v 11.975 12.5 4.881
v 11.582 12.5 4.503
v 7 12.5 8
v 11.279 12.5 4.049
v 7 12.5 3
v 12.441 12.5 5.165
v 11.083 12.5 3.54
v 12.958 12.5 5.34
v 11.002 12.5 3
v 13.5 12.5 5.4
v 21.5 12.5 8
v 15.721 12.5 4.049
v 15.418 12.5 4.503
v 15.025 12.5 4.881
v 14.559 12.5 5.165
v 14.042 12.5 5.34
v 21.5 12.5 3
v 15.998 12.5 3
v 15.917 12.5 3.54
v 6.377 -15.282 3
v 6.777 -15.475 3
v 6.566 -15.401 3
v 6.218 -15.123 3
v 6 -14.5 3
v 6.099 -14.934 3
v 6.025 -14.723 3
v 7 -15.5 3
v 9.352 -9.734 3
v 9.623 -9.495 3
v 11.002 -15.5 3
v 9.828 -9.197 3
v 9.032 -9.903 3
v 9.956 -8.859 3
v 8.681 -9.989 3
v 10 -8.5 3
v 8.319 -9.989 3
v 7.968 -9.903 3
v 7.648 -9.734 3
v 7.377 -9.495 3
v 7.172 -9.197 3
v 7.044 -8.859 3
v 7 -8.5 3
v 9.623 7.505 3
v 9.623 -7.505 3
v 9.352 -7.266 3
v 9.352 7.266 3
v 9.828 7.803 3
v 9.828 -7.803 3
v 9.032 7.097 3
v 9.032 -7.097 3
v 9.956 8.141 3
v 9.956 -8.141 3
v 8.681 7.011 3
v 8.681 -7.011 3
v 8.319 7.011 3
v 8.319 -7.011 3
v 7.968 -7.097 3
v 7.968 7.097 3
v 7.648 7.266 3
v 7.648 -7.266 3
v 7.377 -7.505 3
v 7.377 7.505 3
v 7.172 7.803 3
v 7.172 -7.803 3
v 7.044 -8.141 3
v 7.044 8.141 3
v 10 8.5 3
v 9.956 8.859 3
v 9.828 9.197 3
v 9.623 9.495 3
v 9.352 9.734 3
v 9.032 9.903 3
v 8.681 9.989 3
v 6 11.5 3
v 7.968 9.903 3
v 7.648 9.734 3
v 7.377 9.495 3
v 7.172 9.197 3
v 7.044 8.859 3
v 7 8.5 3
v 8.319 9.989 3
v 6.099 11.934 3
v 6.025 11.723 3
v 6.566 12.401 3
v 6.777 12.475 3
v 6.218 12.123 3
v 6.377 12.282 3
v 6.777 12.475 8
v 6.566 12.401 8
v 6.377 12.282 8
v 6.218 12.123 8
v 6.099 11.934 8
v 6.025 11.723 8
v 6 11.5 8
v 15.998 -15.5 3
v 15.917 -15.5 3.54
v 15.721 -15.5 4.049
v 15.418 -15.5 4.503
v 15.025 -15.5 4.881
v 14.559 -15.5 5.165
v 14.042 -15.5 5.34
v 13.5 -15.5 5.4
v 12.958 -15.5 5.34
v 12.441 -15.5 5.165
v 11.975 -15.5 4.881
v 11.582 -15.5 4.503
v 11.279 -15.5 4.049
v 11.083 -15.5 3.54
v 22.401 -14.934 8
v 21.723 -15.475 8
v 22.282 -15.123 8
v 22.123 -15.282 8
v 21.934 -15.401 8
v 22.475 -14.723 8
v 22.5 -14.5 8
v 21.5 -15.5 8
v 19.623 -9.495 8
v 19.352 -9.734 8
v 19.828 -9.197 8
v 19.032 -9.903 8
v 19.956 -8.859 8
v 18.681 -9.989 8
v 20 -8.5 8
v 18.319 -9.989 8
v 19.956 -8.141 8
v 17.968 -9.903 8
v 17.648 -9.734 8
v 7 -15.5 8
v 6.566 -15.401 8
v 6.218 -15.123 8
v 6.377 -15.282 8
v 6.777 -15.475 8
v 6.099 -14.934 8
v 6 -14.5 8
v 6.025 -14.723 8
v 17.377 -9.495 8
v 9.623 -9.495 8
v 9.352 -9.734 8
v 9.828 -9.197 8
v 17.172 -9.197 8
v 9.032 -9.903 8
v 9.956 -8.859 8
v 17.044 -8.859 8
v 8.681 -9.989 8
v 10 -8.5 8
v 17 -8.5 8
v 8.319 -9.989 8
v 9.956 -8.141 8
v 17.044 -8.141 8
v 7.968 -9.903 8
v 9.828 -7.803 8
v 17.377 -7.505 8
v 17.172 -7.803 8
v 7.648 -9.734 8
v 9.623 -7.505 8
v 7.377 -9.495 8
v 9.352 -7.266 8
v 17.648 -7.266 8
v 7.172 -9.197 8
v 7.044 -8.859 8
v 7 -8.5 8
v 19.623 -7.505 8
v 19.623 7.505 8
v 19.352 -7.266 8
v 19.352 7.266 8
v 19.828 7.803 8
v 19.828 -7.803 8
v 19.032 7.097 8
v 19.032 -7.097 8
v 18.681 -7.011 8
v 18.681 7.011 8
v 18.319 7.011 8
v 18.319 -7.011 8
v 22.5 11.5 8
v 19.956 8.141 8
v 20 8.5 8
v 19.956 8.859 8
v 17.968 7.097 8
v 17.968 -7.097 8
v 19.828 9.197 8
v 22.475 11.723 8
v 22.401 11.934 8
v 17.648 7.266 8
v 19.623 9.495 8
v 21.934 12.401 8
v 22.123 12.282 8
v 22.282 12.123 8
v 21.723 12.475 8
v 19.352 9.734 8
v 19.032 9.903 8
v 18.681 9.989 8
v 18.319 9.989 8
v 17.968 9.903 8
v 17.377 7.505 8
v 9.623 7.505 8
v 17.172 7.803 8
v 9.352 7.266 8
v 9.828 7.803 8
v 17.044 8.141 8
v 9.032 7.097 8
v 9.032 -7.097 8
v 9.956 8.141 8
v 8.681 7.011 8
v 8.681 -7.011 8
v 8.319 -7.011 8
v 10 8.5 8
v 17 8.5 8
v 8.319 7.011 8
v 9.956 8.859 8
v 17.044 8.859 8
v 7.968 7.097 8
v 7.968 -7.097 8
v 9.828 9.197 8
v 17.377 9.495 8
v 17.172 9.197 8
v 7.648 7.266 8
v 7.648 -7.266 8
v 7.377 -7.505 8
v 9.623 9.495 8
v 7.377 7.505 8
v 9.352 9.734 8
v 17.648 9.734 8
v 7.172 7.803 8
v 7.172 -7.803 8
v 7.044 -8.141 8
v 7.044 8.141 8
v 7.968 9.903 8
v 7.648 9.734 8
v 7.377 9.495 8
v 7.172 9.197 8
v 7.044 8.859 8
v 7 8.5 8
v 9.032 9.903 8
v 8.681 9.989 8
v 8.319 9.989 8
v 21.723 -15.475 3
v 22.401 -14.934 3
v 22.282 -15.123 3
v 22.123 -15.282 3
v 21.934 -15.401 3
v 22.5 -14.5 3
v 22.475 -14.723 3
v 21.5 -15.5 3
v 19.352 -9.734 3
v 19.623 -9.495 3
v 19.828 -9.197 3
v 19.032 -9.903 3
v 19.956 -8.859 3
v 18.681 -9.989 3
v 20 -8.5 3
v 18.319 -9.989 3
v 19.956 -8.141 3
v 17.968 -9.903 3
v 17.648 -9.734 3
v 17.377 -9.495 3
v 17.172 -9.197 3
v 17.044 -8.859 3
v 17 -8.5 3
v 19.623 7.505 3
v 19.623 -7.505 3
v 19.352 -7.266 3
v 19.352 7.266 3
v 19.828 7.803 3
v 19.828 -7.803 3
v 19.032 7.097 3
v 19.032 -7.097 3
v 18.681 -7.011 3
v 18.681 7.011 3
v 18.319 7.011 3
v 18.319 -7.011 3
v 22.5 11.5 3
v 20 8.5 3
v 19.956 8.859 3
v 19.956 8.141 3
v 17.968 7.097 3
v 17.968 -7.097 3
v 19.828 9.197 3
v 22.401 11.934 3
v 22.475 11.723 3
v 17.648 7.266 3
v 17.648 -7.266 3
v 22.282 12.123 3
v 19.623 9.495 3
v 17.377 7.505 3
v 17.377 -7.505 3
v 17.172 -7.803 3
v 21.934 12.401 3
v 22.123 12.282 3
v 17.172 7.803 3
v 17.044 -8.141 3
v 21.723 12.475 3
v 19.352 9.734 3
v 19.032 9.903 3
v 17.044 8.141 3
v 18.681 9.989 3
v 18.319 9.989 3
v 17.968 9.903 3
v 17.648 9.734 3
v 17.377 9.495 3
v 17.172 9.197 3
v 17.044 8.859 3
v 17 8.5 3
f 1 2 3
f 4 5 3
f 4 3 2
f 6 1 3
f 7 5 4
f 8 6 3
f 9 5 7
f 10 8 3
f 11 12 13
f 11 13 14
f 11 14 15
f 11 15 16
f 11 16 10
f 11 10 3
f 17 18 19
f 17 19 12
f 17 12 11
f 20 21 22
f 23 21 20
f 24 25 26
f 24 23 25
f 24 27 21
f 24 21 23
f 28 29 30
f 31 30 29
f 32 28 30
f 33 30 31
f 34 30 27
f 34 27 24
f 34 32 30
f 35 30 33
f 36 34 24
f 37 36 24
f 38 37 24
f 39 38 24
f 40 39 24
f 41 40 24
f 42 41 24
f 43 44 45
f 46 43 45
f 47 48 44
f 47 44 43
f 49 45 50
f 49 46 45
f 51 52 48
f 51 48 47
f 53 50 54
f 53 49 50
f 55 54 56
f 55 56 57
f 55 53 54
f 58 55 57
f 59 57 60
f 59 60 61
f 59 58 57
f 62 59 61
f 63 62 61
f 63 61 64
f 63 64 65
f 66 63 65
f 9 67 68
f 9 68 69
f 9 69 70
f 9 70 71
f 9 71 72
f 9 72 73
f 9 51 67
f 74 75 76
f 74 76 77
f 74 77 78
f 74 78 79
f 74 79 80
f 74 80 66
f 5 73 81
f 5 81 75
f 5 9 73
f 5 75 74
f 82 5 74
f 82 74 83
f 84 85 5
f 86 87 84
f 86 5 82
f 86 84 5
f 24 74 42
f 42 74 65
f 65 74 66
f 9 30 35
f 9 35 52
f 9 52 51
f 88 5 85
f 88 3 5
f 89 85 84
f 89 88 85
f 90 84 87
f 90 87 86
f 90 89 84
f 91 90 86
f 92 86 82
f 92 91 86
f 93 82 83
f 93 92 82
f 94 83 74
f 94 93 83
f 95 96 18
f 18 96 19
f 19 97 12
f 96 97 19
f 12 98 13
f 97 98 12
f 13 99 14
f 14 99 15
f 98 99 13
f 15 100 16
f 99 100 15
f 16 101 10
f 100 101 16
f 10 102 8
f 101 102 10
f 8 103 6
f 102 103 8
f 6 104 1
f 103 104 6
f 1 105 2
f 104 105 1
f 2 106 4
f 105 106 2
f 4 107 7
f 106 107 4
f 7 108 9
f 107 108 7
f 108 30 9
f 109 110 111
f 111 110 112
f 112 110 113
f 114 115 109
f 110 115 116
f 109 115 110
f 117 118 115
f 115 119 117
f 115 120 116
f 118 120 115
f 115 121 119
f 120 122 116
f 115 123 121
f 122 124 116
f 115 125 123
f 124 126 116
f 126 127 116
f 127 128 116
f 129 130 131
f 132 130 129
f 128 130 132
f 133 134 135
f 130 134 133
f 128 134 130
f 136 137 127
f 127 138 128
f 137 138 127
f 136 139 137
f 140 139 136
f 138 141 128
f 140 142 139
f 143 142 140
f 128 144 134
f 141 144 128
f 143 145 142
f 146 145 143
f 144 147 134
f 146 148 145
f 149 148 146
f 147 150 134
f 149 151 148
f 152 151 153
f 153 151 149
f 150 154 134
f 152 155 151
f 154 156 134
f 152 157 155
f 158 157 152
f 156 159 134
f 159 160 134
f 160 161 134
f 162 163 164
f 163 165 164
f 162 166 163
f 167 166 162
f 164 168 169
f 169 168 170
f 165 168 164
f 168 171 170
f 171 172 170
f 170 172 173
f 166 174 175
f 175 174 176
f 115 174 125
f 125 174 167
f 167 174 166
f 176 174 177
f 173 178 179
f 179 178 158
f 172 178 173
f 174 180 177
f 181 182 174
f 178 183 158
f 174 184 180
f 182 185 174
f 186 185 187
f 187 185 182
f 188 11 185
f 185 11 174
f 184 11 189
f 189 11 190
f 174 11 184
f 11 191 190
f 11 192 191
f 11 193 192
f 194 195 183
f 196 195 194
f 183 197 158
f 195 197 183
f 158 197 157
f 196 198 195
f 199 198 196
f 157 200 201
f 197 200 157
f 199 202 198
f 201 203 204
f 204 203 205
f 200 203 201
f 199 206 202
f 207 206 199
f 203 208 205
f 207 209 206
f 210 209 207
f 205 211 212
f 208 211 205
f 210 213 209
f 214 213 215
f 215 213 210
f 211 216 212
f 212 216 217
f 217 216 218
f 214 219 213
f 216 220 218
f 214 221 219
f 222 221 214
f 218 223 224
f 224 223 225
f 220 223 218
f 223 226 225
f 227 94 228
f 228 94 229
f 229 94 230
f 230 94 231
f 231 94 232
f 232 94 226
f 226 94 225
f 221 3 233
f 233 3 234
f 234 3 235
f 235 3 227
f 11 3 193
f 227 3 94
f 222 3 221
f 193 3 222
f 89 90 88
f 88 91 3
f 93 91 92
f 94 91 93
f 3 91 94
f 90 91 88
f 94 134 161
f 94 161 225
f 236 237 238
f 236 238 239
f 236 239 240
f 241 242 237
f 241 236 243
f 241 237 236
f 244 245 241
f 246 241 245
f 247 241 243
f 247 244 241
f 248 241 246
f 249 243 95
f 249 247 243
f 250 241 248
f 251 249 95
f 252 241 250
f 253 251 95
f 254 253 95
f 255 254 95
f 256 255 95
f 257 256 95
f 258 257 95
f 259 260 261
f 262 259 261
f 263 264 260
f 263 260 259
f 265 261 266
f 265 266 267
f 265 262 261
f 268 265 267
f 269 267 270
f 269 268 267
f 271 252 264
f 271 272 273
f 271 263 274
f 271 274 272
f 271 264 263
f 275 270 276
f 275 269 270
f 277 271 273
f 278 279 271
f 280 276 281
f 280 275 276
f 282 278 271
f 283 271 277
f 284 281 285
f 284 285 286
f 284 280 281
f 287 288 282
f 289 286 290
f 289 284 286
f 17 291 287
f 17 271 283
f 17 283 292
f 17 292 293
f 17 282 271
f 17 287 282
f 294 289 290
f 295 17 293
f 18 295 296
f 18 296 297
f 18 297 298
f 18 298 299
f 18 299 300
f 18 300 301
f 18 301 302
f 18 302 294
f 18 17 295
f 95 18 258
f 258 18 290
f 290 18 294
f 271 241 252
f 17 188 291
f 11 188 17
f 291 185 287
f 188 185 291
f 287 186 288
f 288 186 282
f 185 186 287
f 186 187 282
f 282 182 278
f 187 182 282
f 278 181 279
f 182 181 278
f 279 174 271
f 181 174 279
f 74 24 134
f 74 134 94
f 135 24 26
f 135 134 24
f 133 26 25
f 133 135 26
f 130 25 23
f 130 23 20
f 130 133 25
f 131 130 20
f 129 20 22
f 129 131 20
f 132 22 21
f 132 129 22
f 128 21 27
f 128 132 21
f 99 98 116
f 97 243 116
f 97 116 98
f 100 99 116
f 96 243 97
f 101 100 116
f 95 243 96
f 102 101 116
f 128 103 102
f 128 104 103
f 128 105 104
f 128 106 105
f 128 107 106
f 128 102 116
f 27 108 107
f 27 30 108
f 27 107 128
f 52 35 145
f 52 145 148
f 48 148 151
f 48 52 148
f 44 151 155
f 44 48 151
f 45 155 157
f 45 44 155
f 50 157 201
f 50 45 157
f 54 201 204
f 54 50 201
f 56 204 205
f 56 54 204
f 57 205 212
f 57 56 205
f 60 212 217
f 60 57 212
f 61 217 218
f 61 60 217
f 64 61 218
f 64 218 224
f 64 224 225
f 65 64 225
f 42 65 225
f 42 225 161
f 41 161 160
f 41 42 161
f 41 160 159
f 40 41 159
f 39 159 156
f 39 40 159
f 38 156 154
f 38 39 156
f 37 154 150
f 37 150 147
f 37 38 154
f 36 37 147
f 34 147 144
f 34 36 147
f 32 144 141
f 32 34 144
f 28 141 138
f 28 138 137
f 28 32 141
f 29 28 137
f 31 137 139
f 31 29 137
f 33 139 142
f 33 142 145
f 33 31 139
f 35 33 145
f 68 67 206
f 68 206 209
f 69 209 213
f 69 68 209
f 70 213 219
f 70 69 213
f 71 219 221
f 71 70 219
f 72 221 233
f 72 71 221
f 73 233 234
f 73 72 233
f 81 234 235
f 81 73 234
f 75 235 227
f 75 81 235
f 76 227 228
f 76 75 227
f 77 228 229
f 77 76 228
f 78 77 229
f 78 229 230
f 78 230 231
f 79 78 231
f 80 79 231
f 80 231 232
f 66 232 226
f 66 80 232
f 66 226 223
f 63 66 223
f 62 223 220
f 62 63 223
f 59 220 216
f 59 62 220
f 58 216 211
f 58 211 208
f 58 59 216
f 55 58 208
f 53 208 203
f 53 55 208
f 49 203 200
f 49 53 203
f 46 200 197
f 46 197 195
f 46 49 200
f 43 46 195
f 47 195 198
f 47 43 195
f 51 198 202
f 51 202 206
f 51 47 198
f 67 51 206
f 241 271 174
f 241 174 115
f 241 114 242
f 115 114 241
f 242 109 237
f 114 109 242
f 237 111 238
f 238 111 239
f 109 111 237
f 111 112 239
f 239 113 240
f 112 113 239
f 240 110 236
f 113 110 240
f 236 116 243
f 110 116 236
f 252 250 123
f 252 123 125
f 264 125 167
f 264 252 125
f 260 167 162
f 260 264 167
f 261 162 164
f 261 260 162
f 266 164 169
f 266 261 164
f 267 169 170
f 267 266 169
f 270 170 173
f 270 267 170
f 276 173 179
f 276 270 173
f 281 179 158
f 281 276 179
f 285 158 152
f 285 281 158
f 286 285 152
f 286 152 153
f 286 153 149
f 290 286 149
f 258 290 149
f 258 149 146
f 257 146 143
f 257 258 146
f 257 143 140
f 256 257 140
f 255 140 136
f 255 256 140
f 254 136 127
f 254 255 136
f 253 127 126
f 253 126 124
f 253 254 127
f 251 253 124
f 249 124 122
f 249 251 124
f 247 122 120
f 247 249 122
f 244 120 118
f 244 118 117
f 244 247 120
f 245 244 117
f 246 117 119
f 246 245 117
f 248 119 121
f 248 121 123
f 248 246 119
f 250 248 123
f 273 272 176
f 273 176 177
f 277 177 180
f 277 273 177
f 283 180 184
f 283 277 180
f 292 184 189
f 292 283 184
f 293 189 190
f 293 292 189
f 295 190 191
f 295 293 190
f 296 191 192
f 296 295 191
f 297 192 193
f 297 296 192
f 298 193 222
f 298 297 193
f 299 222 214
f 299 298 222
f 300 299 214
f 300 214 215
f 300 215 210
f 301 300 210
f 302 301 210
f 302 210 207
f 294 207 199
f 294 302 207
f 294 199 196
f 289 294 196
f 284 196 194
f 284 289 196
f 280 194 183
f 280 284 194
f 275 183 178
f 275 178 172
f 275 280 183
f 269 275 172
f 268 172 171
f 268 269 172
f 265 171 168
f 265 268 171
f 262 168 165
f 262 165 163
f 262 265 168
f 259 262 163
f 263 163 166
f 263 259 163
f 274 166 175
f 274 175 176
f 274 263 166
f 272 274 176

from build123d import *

# Parameters (mm, degrees)
SKETCH001_W  = 16.5
SKETCH001_H  = 28
SKETCH001_R  = 1.5
PAD001_DEPTH = 5
SKETCH_R     = 2.5
POCKET_DEPTH = 28.001
FILLET_R     = 1


with BuildPart() as part:
    # Sketch001 → Pad001 (new body)
    with BuildSketch(Plane.XY.offset(3)):
        with Locations((14.25, -1.5)):
            Rectangle(SKETCH001_W, SKETCH001_H)
        with Locations((8.5, 8.5)):
            Circle(SKETCH001_R, mode=Mode.SUBTRACT)
        with Locations((18.5, 8.5)):
            Circle(SKETCH001_R, mode=Mode.SUBTRACT)
        with Locations((18.5, -8.5)):
            Circle(SKETCH001_R, mode=Mode.SUBTRACT)
        with Locations((8.5, -8.5)):
            Circle(SKETCH001_R, mode=Mode.SUBTRACT)
    extrude(amount=PAD001_DEPTH)

    # Sketch (on Face3 of Pad001) → Pocket (cut, through all)
    with BuildSketch(Plane(origin=(0, -15.5, 3), x_dir=(1, 0, 0), z_dir=(0, -1, 0))):
        with Locations((13.5, -0.1)):
            Circle(SKETCH_R)
    extrude(amount=-POCKET_DEPTH, mode=Mode.SUBTRACT)

    # Fillet
    fillet_edges = [part.edges().sort_by_distance(p)[0] for p in [
        (6, -15.5, 5.5),
        (22.5, -15.5, 5.5),
        (22.5, 12.5, 5.5),
        (6, 12.5, 5.5),
    ]]
    fillet(fillet_edges, radius=FILLET_R)


solid = part.part
